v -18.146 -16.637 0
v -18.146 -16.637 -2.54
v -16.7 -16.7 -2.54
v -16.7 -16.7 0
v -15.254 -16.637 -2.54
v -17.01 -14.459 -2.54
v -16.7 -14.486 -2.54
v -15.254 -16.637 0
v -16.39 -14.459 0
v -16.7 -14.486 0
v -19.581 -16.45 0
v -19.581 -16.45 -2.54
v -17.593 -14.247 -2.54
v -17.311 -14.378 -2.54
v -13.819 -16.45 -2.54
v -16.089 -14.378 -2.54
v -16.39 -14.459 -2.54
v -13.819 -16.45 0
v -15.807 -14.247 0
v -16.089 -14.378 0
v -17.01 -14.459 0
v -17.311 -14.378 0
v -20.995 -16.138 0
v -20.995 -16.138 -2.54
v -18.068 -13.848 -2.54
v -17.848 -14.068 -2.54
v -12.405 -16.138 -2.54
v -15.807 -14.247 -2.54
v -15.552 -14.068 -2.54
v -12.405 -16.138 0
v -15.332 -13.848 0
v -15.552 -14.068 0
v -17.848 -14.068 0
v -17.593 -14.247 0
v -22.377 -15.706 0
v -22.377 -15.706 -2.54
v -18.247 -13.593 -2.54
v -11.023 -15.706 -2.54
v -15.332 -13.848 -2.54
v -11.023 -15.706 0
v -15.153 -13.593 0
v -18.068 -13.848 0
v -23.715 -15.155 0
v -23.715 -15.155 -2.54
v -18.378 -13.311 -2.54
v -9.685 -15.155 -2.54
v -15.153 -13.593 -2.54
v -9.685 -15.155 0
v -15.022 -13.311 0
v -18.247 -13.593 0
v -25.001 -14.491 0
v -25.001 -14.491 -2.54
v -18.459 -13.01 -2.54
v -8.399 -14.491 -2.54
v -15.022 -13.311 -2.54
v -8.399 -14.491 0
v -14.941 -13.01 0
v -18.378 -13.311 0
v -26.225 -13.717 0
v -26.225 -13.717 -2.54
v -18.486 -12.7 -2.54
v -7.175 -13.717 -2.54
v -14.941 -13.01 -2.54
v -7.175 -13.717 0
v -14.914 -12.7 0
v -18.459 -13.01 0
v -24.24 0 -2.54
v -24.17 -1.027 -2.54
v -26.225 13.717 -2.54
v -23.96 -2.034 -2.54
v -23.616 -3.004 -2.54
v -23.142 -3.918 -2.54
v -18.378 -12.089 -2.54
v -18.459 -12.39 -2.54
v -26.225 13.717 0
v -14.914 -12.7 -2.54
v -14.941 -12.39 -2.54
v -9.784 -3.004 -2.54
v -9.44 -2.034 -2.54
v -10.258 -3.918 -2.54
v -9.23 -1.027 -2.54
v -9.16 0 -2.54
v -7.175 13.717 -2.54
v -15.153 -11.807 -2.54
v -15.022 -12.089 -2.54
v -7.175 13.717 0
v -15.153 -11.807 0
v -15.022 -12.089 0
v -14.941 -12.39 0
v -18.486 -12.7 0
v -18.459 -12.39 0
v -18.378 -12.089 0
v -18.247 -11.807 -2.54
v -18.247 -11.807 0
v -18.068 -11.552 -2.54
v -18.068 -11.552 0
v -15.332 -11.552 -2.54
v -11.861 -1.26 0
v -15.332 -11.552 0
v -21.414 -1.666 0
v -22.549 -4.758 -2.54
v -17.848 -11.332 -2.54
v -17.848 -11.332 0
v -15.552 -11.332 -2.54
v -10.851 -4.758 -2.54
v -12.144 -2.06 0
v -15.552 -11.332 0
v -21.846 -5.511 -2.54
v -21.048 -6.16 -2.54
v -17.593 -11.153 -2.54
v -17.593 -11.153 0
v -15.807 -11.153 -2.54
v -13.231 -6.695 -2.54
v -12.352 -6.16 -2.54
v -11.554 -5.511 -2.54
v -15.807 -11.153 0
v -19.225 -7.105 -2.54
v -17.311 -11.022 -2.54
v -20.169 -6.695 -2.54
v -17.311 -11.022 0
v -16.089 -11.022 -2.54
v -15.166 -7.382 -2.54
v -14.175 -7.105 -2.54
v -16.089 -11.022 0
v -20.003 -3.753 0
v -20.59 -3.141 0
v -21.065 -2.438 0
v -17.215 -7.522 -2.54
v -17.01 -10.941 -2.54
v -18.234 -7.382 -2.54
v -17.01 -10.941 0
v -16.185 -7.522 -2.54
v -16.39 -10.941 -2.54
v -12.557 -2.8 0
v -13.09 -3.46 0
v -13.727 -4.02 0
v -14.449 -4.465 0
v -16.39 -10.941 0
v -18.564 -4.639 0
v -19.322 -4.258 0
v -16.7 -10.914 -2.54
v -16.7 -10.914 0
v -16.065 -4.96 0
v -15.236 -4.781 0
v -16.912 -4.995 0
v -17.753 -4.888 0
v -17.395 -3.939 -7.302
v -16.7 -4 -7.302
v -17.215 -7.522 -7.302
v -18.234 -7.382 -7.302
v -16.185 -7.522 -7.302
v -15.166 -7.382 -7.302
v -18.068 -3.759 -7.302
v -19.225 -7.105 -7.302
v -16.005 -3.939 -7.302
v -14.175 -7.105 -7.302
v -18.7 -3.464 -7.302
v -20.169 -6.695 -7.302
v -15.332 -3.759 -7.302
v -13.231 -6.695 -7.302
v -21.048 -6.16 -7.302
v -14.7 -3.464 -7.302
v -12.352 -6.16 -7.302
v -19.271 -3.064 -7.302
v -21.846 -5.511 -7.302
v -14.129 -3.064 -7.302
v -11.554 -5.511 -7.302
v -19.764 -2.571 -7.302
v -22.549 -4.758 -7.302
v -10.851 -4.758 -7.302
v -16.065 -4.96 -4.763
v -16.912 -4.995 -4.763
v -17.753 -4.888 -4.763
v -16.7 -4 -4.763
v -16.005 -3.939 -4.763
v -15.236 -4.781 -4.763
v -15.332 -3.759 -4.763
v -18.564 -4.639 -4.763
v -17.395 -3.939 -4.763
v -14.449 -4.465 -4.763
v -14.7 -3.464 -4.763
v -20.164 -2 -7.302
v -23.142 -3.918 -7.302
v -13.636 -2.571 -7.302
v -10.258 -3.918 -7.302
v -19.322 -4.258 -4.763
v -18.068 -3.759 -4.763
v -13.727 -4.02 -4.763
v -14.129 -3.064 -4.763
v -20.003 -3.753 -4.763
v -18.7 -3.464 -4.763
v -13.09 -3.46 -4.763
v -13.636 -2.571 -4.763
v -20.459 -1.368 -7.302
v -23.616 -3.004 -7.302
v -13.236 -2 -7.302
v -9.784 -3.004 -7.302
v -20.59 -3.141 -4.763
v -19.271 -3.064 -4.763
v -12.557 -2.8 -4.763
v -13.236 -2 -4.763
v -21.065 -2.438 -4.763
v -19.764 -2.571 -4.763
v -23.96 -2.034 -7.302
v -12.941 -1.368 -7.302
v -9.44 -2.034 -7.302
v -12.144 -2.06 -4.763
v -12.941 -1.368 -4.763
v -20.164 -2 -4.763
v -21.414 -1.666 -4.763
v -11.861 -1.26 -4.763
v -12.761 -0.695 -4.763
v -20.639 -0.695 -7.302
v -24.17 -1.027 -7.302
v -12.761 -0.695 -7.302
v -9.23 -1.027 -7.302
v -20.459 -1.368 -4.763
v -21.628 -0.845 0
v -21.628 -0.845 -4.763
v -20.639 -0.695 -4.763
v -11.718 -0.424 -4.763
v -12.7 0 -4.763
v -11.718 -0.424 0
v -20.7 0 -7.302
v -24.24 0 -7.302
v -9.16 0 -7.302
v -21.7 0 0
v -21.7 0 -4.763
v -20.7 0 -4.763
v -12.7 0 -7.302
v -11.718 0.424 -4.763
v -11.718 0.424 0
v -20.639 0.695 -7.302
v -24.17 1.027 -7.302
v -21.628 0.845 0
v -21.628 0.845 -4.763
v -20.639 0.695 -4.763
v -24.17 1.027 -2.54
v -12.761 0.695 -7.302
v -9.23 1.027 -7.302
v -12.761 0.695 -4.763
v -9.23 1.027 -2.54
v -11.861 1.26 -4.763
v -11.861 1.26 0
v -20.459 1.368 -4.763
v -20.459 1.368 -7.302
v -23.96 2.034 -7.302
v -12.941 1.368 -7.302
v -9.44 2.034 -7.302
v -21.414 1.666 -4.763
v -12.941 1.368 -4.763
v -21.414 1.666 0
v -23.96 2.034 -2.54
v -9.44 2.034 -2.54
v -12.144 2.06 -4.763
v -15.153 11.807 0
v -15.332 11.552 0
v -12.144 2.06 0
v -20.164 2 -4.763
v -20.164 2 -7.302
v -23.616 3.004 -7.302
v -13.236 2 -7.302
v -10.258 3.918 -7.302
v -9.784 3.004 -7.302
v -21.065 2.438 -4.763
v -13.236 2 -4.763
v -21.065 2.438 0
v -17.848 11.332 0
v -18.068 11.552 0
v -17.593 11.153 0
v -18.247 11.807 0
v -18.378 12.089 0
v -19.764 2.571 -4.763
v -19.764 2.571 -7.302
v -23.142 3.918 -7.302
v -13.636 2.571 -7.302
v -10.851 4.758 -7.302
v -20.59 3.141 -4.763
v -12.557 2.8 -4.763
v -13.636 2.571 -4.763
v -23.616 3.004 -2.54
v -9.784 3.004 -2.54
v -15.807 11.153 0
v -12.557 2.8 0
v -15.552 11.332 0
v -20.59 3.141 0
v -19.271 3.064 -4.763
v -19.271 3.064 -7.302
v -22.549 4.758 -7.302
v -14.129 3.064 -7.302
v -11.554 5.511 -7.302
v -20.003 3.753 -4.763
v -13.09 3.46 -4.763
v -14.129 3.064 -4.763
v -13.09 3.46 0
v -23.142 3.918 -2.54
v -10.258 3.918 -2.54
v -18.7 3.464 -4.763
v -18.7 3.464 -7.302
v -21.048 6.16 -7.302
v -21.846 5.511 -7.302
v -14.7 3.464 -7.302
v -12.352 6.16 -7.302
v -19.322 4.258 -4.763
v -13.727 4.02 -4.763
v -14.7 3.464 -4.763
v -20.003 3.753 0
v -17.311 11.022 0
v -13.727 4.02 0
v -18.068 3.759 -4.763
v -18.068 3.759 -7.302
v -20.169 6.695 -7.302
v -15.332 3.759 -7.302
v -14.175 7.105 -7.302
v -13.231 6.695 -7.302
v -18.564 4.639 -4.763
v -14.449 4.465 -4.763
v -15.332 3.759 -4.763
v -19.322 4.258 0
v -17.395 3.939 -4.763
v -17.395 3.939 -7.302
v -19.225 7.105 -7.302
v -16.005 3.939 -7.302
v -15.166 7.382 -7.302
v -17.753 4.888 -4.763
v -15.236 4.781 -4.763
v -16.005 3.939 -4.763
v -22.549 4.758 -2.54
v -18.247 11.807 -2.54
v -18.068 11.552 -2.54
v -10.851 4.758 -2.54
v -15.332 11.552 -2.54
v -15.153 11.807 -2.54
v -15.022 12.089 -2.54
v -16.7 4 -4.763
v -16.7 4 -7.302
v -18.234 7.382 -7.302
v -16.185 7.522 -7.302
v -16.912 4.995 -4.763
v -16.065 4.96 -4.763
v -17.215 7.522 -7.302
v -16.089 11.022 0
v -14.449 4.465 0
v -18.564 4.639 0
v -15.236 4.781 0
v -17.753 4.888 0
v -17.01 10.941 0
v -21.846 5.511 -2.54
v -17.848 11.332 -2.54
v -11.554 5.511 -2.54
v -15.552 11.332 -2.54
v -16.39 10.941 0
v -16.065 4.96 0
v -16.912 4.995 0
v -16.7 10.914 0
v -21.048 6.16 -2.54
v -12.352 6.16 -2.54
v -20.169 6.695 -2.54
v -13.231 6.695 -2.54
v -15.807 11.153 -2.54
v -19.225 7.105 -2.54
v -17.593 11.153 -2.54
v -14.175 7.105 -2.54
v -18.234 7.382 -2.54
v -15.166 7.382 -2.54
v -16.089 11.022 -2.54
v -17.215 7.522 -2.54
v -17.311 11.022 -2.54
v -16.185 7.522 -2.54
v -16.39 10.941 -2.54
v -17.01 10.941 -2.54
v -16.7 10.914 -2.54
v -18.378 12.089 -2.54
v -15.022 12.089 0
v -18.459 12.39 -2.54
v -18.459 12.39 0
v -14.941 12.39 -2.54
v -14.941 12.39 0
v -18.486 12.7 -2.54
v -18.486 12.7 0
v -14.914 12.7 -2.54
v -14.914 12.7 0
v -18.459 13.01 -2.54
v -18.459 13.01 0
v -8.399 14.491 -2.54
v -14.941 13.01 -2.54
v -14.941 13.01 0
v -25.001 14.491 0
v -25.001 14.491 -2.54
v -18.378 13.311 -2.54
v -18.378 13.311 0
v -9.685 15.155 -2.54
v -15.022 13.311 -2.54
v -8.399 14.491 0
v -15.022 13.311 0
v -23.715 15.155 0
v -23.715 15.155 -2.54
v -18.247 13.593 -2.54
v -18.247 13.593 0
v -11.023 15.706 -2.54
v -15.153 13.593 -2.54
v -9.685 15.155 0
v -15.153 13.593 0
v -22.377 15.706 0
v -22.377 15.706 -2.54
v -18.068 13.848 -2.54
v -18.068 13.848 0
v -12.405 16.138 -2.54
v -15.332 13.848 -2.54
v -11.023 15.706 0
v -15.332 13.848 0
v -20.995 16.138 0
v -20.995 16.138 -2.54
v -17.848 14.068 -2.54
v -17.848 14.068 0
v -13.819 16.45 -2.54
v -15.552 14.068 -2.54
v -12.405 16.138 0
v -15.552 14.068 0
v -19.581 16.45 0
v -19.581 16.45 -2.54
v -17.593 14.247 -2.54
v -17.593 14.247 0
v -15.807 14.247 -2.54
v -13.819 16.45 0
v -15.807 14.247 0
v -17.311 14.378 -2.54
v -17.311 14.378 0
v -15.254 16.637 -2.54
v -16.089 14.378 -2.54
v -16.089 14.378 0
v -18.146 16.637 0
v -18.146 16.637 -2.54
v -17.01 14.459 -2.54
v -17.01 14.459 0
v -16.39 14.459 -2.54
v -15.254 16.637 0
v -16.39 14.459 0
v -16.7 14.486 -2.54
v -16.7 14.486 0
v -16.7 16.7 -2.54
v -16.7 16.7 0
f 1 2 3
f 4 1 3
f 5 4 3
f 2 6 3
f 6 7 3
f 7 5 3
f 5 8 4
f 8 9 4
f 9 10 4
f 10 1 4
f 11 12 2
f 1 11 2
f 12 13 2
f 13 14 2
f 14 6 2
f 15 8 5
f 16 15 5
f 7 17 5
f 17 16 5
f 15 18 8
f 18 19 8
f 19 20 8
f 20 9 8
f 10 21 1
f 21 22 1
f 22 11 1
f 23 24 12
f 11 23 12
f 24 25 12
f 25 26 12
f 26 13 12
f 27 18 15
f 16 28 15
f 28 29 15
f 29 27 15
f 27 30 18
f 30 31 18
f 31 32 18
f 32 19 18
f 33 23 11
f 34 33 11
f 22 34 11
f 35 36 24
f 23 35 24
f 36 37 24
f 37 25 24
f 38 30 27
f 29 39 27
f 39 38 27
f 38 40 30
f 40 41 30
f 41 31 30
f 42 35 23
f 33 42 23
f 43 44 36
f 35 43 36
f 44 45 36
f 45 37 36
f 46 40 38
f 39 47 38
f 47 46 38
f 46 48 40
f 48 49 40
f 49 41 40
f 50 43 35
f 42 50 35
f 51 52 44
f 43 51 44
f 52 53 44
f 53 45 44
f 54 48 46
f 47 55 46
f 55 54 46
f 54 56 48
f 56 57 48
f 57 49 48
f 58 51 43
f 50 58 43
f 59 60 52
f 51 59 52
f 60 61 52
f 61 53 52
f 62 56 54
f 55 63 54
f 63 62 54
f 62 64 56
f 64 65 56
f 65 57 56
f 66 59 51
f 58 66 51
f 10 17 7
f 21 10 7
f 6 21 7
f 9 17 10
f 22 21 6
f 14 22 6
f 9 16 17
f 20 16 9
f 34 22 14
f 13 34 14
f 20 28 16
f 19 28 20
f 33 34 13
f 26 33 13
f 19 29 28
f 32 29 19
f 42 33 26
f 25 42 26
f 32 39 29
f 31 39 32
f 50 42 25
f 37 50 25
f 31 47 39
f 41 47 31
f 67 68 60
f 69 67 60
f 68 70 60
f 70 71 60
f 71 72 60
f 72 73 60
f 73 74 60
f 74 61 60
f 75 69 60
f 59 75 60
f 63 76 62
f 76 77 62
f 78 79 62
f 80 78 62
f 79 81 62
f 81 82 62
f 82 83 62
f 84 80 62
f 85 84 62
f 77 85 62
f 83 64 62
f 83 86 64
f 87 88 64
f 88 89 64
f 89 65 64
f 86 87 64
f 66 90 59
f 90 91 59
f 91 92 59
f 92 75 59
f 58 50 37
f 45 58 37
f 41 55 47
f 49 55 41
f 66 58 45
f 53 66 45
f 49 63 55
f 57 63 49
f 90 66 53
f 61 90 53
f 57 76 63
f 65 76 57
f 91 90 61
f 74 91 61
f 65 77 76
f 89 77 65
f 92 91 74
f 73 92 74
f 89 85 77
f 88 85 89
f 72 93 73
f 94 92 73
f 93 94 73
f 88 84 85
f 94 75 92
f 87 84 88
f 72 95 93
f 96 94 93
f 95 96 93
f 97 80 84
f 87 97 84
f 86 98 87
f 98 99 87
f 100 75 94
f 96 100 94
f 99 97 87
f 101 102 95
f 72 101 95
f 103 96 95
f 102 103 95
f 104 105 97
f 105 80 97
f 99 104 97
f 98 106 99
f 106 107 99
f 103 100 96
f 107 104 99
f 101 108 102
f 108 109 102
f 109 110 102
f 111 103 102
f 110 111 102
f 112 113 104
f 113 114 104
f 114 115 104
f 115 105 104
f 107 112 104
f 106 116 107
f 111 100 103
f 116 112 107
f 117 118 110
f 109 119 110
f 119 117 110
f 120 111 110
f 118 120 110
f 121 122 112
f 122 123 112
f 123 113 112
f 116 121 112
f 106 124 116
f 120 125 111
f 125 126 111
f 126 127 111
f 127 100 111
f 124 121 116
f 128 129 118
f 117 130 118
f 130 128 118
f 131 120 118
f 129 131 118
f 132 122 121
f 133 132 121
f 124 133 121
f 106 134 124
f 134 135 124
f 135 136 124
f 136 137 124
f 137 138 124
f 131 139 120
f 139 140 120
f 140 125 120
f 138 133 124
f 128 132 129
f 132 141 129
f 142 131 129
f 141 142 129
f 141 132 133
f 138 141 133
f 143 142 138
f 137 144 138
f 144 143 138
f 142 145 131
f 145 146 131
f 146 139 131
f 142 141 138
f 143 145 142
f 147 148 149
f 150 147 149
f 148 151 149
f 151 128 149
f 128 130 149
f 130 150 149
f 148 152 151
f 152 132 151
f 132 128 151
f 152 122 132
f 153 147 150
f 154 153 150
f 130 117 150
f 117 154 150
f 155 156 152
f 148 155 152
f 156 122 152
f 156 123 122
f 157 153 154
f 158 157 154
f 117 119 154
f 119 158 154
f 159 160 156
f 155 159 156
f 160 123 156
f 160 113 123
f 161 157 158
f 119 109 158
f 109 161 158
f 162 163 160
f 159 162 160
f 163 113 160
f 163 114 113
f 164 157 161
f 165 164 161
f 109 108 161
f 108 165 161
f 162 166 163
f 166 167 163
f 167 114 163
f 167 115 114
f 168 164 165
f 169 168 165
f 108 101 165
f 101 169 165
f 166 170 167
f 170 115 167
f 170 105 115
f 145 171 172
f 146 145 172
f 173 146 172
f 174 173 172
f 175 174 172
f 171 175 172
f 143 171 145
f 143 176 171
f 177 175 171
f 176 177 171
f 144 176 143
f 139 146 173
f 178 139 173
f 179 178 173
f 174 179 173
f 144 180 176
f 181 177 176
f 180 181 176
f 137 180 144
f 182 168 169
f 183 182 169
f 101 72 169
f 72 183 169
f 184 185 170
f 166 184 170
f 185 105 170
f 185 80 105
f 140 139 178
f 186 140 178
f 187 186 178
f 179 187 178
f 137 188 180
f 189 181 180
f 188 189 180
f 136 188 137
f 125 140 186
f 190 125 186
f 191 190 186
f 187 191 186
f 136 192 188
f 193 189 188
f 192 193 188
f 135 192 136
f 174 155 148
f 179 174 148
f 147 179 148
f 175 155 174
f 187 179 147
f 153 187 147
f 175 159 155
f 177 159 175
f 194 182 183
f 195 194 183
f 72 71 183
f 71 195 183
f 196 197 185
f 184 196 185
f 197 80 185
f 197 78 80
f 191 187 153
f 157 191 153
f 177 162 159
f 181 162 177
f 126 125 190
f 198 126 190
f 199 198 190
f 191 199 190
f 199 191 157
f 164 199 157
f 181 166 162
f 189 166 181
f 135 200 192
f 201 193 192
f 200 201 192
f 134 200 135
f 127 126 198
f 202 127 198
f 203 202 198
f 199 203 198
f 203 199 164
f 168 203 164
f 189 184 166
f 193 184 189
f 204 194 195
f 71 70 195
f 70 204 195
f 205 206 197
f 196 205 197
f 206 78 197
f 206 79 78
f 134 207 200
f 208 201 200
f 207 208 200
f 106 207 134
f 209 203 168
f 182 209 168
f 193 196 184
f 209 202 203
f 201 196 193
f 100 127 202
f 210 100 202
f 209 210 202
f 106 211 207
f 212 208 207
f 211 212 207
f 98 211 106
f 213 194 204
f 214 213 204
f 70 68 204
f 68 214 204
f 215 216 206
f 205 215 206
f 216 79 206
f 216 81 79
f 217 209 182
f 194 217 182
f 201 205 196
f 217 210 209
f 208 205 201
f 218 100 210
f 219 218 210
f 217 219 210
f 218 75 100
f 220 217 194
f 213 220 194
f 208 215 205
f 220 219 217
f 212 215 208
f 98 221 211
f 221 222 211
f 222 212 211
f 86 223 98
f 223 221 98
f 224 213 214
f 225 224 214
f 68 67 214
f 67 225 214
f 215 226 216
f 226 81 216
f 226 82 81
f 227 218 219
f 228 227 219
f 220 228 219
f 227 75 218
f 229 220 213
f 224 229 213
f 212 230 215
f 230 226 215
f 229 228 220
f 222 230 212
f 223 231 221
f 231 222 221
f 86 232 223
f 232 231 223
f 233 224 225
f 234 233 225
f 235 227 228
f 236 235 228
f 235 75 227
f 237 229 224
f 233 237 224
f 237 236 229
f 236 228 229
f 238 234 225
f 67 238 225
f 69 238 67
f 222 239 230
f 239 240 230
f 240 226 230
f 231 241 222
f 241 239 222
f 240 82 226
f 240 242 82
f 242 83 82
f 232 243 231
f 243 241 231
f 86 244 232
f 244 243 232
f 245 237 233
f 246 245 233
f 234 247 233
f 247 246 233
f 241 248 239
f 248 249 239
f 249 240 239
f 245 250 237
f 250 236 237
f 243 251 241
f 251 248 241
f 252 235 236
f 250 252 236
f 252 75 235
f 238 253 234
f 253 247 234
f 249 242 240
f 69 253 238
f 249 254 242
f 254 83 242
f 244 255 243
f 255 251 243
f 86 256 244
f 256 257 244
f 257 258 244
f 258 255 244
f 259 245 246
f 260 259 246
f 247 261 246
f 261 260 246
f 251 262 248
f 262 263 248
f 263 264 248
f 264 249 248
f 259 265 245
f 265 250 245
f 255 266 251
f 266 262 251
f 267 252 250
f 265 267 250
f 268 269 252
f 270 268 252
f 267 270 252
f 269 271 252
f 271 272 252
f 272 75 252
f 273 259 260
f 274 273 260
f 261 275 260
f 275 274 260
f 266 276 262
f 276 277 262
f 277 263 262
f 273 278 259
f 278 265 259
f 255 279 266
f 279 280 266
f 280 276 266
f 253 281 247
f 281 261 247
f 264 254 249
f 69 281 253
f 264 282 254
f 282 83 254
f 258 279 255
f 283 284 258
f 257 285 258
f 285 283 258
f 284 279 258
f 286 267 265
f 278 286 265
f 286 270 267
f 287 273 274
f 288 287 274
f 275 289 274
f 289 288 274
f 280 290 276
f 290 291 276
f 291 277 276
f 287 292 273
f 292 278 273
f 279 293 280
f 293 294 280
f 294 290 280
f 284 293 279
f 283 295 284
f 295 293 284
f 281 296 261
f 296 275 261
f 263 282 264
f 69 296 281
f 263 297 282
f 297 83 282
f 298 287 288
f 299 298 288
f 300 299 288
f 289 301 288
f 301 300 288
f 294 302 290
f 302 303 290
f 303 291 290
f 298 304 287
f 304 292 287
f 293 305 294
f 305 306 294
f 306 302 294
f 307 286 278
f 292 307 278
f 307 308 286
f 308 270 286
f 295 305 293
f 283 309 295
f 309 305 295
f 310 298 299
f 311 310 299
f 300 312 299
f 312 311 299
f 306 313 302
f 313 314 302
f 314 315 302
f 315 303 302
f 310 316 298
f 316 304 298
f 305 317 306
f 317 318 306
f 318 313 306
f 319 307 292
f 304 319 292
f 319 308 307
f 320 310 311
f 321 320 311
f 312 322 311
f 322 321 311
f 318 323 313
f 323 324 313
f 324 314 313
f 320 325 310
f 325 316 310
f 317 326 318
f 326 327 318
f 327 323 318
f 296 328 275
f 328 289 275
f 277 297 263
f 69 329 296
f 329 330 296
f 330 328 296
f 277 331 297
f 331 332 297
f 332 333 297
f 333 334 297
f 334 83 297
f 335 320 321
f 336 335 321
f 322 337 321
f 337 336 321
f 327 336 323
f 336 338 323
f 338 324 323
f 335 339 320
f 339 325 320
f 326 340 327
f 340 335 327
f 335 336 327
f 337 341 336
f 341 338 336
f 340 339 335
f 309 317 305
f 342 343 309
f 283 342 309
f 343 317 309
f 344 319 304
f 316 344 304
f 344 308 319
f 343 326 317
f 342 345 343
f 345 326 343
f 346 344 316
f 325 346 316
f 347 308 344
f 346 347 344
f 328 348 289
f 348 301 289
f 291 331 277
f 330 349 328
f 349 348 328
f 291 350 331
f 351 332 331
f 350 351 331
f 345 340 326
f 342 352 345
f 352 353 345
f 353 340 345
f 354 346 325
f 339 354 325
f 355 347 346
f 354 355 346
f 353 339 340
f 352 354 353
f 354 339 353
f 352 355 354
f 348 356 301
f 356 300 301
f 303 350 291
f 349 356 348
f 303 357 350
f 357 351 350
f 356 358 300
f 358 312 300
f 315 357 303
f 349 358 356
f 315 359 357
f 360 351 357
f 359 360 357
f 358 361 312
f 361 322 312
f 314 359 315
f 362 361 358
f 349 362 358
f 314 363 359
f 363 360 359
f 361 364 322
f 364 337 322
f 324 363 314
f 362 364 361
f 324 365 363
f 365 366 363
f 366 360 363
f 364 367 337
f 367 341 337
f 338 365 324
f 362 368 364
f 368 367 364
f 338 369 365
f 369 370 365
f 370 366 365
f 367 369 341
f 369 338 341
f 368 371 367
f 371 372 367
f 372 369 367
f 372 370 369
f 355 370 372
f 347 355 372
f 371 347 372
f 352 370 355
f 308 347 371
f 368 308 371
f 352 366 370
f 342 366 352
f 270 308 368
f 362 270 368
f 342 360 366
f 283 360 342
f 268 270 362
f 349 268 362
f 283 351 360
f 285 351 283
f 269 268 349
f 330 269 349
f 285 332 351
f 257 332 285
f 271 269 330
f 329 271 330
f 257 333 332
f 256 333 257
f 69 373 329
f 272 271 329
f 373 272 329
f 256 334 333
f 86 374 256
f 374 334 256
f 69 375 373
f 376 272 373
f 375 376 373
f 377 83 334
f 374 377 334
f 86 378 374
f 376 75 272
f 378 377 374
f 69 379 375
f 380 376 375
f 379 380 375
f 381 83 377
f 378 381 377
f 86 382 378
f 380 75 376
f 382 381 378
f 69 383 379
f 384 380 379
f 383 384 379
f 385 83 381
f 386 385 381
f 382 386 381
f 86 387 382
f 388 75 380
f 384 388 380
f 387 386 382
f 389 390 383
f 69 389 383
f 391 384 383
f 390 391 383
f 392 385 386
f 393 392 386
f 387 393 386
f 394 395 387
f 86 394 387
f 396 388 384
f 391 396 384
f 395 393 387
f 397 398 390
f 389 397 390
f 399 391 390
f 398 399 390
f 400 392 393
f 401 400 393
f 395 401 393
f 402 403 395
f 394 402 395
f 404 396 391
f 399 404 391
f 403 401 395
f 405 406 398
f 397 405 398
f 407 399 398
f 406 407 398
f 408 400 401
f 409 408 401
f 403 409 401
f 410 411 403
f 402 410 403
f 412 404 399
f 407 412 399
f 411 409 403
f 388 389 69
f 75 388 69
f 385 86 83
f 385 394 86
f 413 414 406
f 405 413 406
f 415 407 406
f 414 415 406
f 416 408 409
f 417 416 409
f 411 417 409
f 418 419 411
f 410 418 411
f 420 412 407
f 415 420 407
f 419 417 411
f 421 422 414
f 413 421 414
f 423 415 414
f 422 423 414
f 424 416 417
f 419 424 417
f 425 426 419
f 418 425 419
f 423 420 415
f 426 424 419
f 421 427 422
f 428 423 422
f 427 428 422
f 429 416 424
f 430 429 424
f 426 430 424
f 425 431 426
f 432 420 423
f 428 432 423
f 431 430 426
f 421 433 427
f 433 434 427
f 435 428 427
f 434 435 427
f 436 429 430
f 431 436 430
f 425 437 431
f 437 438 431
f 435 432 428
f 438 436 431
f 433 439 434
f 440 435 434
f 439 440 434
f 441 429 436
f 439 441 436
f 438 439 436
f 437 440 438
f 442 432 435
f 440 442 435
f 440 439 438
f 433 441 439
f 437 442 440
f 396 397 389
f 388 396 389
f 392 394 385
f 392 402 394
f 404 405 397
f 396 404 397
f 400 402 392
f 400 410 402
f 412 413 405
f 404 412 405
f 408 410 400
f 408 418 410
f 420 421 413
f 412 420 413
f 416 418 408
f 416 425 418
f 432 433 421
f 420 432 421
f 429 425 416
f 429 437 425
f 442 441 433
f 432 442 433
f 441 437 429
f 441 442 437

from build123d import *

# Parameters (mm, degrees)
SKETCH2_R          = 1.7859375
SKETCH2_W          = 25.4
SKETCH2_H          = 31.75
CUT_EXTRUDE1_DEPTH = 7.3025


with BuildPart() as part:
    # Sketch1 → Revolve1 (revolve)
    with BuildSketch(Plane(origin=(0, 0, 0), x_dir=(1, 0, 0), z_dir=(0, 1, 0)), mode=Mode.PRIVATE) as revolve1_sk:
        Polygon((0, 0), (-11.7, 0), (-11.7, 4.7625), (-12.7, 4.7625), (-12.7, 7.3025), (-9.16, 7.3025), (-9.16, 2.54), (0, 2.54), align=None)
    revolve(revolve1_sk.sketch.rotate(Axis((-16.7, 0, -8.744517985), (0, 0, 1)), 180), axis=Axis((-16.7, 0, -8.744517985), (0, 0, 1)))

    # Sketch2 → Cut-Extrude1 (cut)
    with BuildSketch(Plane(origin=(0, 0, -7.3025), x_dir=(-1, 0, 0), z_dir=(0, 0, -1))):
        with Locations((16.7, -12.7)):
            Circle(SKETCH2_R)
        with Locations((16.7, 12.7)):
            Circle(SKETCH2_R)
        with Locations((38.925, 0)):
            Rectangle(SKETCH2_W, SKETCH2_H)
        with Locations((-5.525, 0)):
            Rectangle(SKETCH2_W, SKETCH2_H)
    extrude(amount=-CUT_EXTRUDE1_DEPTH, mode=Mode.SUBTRACT)


solid = part.part
